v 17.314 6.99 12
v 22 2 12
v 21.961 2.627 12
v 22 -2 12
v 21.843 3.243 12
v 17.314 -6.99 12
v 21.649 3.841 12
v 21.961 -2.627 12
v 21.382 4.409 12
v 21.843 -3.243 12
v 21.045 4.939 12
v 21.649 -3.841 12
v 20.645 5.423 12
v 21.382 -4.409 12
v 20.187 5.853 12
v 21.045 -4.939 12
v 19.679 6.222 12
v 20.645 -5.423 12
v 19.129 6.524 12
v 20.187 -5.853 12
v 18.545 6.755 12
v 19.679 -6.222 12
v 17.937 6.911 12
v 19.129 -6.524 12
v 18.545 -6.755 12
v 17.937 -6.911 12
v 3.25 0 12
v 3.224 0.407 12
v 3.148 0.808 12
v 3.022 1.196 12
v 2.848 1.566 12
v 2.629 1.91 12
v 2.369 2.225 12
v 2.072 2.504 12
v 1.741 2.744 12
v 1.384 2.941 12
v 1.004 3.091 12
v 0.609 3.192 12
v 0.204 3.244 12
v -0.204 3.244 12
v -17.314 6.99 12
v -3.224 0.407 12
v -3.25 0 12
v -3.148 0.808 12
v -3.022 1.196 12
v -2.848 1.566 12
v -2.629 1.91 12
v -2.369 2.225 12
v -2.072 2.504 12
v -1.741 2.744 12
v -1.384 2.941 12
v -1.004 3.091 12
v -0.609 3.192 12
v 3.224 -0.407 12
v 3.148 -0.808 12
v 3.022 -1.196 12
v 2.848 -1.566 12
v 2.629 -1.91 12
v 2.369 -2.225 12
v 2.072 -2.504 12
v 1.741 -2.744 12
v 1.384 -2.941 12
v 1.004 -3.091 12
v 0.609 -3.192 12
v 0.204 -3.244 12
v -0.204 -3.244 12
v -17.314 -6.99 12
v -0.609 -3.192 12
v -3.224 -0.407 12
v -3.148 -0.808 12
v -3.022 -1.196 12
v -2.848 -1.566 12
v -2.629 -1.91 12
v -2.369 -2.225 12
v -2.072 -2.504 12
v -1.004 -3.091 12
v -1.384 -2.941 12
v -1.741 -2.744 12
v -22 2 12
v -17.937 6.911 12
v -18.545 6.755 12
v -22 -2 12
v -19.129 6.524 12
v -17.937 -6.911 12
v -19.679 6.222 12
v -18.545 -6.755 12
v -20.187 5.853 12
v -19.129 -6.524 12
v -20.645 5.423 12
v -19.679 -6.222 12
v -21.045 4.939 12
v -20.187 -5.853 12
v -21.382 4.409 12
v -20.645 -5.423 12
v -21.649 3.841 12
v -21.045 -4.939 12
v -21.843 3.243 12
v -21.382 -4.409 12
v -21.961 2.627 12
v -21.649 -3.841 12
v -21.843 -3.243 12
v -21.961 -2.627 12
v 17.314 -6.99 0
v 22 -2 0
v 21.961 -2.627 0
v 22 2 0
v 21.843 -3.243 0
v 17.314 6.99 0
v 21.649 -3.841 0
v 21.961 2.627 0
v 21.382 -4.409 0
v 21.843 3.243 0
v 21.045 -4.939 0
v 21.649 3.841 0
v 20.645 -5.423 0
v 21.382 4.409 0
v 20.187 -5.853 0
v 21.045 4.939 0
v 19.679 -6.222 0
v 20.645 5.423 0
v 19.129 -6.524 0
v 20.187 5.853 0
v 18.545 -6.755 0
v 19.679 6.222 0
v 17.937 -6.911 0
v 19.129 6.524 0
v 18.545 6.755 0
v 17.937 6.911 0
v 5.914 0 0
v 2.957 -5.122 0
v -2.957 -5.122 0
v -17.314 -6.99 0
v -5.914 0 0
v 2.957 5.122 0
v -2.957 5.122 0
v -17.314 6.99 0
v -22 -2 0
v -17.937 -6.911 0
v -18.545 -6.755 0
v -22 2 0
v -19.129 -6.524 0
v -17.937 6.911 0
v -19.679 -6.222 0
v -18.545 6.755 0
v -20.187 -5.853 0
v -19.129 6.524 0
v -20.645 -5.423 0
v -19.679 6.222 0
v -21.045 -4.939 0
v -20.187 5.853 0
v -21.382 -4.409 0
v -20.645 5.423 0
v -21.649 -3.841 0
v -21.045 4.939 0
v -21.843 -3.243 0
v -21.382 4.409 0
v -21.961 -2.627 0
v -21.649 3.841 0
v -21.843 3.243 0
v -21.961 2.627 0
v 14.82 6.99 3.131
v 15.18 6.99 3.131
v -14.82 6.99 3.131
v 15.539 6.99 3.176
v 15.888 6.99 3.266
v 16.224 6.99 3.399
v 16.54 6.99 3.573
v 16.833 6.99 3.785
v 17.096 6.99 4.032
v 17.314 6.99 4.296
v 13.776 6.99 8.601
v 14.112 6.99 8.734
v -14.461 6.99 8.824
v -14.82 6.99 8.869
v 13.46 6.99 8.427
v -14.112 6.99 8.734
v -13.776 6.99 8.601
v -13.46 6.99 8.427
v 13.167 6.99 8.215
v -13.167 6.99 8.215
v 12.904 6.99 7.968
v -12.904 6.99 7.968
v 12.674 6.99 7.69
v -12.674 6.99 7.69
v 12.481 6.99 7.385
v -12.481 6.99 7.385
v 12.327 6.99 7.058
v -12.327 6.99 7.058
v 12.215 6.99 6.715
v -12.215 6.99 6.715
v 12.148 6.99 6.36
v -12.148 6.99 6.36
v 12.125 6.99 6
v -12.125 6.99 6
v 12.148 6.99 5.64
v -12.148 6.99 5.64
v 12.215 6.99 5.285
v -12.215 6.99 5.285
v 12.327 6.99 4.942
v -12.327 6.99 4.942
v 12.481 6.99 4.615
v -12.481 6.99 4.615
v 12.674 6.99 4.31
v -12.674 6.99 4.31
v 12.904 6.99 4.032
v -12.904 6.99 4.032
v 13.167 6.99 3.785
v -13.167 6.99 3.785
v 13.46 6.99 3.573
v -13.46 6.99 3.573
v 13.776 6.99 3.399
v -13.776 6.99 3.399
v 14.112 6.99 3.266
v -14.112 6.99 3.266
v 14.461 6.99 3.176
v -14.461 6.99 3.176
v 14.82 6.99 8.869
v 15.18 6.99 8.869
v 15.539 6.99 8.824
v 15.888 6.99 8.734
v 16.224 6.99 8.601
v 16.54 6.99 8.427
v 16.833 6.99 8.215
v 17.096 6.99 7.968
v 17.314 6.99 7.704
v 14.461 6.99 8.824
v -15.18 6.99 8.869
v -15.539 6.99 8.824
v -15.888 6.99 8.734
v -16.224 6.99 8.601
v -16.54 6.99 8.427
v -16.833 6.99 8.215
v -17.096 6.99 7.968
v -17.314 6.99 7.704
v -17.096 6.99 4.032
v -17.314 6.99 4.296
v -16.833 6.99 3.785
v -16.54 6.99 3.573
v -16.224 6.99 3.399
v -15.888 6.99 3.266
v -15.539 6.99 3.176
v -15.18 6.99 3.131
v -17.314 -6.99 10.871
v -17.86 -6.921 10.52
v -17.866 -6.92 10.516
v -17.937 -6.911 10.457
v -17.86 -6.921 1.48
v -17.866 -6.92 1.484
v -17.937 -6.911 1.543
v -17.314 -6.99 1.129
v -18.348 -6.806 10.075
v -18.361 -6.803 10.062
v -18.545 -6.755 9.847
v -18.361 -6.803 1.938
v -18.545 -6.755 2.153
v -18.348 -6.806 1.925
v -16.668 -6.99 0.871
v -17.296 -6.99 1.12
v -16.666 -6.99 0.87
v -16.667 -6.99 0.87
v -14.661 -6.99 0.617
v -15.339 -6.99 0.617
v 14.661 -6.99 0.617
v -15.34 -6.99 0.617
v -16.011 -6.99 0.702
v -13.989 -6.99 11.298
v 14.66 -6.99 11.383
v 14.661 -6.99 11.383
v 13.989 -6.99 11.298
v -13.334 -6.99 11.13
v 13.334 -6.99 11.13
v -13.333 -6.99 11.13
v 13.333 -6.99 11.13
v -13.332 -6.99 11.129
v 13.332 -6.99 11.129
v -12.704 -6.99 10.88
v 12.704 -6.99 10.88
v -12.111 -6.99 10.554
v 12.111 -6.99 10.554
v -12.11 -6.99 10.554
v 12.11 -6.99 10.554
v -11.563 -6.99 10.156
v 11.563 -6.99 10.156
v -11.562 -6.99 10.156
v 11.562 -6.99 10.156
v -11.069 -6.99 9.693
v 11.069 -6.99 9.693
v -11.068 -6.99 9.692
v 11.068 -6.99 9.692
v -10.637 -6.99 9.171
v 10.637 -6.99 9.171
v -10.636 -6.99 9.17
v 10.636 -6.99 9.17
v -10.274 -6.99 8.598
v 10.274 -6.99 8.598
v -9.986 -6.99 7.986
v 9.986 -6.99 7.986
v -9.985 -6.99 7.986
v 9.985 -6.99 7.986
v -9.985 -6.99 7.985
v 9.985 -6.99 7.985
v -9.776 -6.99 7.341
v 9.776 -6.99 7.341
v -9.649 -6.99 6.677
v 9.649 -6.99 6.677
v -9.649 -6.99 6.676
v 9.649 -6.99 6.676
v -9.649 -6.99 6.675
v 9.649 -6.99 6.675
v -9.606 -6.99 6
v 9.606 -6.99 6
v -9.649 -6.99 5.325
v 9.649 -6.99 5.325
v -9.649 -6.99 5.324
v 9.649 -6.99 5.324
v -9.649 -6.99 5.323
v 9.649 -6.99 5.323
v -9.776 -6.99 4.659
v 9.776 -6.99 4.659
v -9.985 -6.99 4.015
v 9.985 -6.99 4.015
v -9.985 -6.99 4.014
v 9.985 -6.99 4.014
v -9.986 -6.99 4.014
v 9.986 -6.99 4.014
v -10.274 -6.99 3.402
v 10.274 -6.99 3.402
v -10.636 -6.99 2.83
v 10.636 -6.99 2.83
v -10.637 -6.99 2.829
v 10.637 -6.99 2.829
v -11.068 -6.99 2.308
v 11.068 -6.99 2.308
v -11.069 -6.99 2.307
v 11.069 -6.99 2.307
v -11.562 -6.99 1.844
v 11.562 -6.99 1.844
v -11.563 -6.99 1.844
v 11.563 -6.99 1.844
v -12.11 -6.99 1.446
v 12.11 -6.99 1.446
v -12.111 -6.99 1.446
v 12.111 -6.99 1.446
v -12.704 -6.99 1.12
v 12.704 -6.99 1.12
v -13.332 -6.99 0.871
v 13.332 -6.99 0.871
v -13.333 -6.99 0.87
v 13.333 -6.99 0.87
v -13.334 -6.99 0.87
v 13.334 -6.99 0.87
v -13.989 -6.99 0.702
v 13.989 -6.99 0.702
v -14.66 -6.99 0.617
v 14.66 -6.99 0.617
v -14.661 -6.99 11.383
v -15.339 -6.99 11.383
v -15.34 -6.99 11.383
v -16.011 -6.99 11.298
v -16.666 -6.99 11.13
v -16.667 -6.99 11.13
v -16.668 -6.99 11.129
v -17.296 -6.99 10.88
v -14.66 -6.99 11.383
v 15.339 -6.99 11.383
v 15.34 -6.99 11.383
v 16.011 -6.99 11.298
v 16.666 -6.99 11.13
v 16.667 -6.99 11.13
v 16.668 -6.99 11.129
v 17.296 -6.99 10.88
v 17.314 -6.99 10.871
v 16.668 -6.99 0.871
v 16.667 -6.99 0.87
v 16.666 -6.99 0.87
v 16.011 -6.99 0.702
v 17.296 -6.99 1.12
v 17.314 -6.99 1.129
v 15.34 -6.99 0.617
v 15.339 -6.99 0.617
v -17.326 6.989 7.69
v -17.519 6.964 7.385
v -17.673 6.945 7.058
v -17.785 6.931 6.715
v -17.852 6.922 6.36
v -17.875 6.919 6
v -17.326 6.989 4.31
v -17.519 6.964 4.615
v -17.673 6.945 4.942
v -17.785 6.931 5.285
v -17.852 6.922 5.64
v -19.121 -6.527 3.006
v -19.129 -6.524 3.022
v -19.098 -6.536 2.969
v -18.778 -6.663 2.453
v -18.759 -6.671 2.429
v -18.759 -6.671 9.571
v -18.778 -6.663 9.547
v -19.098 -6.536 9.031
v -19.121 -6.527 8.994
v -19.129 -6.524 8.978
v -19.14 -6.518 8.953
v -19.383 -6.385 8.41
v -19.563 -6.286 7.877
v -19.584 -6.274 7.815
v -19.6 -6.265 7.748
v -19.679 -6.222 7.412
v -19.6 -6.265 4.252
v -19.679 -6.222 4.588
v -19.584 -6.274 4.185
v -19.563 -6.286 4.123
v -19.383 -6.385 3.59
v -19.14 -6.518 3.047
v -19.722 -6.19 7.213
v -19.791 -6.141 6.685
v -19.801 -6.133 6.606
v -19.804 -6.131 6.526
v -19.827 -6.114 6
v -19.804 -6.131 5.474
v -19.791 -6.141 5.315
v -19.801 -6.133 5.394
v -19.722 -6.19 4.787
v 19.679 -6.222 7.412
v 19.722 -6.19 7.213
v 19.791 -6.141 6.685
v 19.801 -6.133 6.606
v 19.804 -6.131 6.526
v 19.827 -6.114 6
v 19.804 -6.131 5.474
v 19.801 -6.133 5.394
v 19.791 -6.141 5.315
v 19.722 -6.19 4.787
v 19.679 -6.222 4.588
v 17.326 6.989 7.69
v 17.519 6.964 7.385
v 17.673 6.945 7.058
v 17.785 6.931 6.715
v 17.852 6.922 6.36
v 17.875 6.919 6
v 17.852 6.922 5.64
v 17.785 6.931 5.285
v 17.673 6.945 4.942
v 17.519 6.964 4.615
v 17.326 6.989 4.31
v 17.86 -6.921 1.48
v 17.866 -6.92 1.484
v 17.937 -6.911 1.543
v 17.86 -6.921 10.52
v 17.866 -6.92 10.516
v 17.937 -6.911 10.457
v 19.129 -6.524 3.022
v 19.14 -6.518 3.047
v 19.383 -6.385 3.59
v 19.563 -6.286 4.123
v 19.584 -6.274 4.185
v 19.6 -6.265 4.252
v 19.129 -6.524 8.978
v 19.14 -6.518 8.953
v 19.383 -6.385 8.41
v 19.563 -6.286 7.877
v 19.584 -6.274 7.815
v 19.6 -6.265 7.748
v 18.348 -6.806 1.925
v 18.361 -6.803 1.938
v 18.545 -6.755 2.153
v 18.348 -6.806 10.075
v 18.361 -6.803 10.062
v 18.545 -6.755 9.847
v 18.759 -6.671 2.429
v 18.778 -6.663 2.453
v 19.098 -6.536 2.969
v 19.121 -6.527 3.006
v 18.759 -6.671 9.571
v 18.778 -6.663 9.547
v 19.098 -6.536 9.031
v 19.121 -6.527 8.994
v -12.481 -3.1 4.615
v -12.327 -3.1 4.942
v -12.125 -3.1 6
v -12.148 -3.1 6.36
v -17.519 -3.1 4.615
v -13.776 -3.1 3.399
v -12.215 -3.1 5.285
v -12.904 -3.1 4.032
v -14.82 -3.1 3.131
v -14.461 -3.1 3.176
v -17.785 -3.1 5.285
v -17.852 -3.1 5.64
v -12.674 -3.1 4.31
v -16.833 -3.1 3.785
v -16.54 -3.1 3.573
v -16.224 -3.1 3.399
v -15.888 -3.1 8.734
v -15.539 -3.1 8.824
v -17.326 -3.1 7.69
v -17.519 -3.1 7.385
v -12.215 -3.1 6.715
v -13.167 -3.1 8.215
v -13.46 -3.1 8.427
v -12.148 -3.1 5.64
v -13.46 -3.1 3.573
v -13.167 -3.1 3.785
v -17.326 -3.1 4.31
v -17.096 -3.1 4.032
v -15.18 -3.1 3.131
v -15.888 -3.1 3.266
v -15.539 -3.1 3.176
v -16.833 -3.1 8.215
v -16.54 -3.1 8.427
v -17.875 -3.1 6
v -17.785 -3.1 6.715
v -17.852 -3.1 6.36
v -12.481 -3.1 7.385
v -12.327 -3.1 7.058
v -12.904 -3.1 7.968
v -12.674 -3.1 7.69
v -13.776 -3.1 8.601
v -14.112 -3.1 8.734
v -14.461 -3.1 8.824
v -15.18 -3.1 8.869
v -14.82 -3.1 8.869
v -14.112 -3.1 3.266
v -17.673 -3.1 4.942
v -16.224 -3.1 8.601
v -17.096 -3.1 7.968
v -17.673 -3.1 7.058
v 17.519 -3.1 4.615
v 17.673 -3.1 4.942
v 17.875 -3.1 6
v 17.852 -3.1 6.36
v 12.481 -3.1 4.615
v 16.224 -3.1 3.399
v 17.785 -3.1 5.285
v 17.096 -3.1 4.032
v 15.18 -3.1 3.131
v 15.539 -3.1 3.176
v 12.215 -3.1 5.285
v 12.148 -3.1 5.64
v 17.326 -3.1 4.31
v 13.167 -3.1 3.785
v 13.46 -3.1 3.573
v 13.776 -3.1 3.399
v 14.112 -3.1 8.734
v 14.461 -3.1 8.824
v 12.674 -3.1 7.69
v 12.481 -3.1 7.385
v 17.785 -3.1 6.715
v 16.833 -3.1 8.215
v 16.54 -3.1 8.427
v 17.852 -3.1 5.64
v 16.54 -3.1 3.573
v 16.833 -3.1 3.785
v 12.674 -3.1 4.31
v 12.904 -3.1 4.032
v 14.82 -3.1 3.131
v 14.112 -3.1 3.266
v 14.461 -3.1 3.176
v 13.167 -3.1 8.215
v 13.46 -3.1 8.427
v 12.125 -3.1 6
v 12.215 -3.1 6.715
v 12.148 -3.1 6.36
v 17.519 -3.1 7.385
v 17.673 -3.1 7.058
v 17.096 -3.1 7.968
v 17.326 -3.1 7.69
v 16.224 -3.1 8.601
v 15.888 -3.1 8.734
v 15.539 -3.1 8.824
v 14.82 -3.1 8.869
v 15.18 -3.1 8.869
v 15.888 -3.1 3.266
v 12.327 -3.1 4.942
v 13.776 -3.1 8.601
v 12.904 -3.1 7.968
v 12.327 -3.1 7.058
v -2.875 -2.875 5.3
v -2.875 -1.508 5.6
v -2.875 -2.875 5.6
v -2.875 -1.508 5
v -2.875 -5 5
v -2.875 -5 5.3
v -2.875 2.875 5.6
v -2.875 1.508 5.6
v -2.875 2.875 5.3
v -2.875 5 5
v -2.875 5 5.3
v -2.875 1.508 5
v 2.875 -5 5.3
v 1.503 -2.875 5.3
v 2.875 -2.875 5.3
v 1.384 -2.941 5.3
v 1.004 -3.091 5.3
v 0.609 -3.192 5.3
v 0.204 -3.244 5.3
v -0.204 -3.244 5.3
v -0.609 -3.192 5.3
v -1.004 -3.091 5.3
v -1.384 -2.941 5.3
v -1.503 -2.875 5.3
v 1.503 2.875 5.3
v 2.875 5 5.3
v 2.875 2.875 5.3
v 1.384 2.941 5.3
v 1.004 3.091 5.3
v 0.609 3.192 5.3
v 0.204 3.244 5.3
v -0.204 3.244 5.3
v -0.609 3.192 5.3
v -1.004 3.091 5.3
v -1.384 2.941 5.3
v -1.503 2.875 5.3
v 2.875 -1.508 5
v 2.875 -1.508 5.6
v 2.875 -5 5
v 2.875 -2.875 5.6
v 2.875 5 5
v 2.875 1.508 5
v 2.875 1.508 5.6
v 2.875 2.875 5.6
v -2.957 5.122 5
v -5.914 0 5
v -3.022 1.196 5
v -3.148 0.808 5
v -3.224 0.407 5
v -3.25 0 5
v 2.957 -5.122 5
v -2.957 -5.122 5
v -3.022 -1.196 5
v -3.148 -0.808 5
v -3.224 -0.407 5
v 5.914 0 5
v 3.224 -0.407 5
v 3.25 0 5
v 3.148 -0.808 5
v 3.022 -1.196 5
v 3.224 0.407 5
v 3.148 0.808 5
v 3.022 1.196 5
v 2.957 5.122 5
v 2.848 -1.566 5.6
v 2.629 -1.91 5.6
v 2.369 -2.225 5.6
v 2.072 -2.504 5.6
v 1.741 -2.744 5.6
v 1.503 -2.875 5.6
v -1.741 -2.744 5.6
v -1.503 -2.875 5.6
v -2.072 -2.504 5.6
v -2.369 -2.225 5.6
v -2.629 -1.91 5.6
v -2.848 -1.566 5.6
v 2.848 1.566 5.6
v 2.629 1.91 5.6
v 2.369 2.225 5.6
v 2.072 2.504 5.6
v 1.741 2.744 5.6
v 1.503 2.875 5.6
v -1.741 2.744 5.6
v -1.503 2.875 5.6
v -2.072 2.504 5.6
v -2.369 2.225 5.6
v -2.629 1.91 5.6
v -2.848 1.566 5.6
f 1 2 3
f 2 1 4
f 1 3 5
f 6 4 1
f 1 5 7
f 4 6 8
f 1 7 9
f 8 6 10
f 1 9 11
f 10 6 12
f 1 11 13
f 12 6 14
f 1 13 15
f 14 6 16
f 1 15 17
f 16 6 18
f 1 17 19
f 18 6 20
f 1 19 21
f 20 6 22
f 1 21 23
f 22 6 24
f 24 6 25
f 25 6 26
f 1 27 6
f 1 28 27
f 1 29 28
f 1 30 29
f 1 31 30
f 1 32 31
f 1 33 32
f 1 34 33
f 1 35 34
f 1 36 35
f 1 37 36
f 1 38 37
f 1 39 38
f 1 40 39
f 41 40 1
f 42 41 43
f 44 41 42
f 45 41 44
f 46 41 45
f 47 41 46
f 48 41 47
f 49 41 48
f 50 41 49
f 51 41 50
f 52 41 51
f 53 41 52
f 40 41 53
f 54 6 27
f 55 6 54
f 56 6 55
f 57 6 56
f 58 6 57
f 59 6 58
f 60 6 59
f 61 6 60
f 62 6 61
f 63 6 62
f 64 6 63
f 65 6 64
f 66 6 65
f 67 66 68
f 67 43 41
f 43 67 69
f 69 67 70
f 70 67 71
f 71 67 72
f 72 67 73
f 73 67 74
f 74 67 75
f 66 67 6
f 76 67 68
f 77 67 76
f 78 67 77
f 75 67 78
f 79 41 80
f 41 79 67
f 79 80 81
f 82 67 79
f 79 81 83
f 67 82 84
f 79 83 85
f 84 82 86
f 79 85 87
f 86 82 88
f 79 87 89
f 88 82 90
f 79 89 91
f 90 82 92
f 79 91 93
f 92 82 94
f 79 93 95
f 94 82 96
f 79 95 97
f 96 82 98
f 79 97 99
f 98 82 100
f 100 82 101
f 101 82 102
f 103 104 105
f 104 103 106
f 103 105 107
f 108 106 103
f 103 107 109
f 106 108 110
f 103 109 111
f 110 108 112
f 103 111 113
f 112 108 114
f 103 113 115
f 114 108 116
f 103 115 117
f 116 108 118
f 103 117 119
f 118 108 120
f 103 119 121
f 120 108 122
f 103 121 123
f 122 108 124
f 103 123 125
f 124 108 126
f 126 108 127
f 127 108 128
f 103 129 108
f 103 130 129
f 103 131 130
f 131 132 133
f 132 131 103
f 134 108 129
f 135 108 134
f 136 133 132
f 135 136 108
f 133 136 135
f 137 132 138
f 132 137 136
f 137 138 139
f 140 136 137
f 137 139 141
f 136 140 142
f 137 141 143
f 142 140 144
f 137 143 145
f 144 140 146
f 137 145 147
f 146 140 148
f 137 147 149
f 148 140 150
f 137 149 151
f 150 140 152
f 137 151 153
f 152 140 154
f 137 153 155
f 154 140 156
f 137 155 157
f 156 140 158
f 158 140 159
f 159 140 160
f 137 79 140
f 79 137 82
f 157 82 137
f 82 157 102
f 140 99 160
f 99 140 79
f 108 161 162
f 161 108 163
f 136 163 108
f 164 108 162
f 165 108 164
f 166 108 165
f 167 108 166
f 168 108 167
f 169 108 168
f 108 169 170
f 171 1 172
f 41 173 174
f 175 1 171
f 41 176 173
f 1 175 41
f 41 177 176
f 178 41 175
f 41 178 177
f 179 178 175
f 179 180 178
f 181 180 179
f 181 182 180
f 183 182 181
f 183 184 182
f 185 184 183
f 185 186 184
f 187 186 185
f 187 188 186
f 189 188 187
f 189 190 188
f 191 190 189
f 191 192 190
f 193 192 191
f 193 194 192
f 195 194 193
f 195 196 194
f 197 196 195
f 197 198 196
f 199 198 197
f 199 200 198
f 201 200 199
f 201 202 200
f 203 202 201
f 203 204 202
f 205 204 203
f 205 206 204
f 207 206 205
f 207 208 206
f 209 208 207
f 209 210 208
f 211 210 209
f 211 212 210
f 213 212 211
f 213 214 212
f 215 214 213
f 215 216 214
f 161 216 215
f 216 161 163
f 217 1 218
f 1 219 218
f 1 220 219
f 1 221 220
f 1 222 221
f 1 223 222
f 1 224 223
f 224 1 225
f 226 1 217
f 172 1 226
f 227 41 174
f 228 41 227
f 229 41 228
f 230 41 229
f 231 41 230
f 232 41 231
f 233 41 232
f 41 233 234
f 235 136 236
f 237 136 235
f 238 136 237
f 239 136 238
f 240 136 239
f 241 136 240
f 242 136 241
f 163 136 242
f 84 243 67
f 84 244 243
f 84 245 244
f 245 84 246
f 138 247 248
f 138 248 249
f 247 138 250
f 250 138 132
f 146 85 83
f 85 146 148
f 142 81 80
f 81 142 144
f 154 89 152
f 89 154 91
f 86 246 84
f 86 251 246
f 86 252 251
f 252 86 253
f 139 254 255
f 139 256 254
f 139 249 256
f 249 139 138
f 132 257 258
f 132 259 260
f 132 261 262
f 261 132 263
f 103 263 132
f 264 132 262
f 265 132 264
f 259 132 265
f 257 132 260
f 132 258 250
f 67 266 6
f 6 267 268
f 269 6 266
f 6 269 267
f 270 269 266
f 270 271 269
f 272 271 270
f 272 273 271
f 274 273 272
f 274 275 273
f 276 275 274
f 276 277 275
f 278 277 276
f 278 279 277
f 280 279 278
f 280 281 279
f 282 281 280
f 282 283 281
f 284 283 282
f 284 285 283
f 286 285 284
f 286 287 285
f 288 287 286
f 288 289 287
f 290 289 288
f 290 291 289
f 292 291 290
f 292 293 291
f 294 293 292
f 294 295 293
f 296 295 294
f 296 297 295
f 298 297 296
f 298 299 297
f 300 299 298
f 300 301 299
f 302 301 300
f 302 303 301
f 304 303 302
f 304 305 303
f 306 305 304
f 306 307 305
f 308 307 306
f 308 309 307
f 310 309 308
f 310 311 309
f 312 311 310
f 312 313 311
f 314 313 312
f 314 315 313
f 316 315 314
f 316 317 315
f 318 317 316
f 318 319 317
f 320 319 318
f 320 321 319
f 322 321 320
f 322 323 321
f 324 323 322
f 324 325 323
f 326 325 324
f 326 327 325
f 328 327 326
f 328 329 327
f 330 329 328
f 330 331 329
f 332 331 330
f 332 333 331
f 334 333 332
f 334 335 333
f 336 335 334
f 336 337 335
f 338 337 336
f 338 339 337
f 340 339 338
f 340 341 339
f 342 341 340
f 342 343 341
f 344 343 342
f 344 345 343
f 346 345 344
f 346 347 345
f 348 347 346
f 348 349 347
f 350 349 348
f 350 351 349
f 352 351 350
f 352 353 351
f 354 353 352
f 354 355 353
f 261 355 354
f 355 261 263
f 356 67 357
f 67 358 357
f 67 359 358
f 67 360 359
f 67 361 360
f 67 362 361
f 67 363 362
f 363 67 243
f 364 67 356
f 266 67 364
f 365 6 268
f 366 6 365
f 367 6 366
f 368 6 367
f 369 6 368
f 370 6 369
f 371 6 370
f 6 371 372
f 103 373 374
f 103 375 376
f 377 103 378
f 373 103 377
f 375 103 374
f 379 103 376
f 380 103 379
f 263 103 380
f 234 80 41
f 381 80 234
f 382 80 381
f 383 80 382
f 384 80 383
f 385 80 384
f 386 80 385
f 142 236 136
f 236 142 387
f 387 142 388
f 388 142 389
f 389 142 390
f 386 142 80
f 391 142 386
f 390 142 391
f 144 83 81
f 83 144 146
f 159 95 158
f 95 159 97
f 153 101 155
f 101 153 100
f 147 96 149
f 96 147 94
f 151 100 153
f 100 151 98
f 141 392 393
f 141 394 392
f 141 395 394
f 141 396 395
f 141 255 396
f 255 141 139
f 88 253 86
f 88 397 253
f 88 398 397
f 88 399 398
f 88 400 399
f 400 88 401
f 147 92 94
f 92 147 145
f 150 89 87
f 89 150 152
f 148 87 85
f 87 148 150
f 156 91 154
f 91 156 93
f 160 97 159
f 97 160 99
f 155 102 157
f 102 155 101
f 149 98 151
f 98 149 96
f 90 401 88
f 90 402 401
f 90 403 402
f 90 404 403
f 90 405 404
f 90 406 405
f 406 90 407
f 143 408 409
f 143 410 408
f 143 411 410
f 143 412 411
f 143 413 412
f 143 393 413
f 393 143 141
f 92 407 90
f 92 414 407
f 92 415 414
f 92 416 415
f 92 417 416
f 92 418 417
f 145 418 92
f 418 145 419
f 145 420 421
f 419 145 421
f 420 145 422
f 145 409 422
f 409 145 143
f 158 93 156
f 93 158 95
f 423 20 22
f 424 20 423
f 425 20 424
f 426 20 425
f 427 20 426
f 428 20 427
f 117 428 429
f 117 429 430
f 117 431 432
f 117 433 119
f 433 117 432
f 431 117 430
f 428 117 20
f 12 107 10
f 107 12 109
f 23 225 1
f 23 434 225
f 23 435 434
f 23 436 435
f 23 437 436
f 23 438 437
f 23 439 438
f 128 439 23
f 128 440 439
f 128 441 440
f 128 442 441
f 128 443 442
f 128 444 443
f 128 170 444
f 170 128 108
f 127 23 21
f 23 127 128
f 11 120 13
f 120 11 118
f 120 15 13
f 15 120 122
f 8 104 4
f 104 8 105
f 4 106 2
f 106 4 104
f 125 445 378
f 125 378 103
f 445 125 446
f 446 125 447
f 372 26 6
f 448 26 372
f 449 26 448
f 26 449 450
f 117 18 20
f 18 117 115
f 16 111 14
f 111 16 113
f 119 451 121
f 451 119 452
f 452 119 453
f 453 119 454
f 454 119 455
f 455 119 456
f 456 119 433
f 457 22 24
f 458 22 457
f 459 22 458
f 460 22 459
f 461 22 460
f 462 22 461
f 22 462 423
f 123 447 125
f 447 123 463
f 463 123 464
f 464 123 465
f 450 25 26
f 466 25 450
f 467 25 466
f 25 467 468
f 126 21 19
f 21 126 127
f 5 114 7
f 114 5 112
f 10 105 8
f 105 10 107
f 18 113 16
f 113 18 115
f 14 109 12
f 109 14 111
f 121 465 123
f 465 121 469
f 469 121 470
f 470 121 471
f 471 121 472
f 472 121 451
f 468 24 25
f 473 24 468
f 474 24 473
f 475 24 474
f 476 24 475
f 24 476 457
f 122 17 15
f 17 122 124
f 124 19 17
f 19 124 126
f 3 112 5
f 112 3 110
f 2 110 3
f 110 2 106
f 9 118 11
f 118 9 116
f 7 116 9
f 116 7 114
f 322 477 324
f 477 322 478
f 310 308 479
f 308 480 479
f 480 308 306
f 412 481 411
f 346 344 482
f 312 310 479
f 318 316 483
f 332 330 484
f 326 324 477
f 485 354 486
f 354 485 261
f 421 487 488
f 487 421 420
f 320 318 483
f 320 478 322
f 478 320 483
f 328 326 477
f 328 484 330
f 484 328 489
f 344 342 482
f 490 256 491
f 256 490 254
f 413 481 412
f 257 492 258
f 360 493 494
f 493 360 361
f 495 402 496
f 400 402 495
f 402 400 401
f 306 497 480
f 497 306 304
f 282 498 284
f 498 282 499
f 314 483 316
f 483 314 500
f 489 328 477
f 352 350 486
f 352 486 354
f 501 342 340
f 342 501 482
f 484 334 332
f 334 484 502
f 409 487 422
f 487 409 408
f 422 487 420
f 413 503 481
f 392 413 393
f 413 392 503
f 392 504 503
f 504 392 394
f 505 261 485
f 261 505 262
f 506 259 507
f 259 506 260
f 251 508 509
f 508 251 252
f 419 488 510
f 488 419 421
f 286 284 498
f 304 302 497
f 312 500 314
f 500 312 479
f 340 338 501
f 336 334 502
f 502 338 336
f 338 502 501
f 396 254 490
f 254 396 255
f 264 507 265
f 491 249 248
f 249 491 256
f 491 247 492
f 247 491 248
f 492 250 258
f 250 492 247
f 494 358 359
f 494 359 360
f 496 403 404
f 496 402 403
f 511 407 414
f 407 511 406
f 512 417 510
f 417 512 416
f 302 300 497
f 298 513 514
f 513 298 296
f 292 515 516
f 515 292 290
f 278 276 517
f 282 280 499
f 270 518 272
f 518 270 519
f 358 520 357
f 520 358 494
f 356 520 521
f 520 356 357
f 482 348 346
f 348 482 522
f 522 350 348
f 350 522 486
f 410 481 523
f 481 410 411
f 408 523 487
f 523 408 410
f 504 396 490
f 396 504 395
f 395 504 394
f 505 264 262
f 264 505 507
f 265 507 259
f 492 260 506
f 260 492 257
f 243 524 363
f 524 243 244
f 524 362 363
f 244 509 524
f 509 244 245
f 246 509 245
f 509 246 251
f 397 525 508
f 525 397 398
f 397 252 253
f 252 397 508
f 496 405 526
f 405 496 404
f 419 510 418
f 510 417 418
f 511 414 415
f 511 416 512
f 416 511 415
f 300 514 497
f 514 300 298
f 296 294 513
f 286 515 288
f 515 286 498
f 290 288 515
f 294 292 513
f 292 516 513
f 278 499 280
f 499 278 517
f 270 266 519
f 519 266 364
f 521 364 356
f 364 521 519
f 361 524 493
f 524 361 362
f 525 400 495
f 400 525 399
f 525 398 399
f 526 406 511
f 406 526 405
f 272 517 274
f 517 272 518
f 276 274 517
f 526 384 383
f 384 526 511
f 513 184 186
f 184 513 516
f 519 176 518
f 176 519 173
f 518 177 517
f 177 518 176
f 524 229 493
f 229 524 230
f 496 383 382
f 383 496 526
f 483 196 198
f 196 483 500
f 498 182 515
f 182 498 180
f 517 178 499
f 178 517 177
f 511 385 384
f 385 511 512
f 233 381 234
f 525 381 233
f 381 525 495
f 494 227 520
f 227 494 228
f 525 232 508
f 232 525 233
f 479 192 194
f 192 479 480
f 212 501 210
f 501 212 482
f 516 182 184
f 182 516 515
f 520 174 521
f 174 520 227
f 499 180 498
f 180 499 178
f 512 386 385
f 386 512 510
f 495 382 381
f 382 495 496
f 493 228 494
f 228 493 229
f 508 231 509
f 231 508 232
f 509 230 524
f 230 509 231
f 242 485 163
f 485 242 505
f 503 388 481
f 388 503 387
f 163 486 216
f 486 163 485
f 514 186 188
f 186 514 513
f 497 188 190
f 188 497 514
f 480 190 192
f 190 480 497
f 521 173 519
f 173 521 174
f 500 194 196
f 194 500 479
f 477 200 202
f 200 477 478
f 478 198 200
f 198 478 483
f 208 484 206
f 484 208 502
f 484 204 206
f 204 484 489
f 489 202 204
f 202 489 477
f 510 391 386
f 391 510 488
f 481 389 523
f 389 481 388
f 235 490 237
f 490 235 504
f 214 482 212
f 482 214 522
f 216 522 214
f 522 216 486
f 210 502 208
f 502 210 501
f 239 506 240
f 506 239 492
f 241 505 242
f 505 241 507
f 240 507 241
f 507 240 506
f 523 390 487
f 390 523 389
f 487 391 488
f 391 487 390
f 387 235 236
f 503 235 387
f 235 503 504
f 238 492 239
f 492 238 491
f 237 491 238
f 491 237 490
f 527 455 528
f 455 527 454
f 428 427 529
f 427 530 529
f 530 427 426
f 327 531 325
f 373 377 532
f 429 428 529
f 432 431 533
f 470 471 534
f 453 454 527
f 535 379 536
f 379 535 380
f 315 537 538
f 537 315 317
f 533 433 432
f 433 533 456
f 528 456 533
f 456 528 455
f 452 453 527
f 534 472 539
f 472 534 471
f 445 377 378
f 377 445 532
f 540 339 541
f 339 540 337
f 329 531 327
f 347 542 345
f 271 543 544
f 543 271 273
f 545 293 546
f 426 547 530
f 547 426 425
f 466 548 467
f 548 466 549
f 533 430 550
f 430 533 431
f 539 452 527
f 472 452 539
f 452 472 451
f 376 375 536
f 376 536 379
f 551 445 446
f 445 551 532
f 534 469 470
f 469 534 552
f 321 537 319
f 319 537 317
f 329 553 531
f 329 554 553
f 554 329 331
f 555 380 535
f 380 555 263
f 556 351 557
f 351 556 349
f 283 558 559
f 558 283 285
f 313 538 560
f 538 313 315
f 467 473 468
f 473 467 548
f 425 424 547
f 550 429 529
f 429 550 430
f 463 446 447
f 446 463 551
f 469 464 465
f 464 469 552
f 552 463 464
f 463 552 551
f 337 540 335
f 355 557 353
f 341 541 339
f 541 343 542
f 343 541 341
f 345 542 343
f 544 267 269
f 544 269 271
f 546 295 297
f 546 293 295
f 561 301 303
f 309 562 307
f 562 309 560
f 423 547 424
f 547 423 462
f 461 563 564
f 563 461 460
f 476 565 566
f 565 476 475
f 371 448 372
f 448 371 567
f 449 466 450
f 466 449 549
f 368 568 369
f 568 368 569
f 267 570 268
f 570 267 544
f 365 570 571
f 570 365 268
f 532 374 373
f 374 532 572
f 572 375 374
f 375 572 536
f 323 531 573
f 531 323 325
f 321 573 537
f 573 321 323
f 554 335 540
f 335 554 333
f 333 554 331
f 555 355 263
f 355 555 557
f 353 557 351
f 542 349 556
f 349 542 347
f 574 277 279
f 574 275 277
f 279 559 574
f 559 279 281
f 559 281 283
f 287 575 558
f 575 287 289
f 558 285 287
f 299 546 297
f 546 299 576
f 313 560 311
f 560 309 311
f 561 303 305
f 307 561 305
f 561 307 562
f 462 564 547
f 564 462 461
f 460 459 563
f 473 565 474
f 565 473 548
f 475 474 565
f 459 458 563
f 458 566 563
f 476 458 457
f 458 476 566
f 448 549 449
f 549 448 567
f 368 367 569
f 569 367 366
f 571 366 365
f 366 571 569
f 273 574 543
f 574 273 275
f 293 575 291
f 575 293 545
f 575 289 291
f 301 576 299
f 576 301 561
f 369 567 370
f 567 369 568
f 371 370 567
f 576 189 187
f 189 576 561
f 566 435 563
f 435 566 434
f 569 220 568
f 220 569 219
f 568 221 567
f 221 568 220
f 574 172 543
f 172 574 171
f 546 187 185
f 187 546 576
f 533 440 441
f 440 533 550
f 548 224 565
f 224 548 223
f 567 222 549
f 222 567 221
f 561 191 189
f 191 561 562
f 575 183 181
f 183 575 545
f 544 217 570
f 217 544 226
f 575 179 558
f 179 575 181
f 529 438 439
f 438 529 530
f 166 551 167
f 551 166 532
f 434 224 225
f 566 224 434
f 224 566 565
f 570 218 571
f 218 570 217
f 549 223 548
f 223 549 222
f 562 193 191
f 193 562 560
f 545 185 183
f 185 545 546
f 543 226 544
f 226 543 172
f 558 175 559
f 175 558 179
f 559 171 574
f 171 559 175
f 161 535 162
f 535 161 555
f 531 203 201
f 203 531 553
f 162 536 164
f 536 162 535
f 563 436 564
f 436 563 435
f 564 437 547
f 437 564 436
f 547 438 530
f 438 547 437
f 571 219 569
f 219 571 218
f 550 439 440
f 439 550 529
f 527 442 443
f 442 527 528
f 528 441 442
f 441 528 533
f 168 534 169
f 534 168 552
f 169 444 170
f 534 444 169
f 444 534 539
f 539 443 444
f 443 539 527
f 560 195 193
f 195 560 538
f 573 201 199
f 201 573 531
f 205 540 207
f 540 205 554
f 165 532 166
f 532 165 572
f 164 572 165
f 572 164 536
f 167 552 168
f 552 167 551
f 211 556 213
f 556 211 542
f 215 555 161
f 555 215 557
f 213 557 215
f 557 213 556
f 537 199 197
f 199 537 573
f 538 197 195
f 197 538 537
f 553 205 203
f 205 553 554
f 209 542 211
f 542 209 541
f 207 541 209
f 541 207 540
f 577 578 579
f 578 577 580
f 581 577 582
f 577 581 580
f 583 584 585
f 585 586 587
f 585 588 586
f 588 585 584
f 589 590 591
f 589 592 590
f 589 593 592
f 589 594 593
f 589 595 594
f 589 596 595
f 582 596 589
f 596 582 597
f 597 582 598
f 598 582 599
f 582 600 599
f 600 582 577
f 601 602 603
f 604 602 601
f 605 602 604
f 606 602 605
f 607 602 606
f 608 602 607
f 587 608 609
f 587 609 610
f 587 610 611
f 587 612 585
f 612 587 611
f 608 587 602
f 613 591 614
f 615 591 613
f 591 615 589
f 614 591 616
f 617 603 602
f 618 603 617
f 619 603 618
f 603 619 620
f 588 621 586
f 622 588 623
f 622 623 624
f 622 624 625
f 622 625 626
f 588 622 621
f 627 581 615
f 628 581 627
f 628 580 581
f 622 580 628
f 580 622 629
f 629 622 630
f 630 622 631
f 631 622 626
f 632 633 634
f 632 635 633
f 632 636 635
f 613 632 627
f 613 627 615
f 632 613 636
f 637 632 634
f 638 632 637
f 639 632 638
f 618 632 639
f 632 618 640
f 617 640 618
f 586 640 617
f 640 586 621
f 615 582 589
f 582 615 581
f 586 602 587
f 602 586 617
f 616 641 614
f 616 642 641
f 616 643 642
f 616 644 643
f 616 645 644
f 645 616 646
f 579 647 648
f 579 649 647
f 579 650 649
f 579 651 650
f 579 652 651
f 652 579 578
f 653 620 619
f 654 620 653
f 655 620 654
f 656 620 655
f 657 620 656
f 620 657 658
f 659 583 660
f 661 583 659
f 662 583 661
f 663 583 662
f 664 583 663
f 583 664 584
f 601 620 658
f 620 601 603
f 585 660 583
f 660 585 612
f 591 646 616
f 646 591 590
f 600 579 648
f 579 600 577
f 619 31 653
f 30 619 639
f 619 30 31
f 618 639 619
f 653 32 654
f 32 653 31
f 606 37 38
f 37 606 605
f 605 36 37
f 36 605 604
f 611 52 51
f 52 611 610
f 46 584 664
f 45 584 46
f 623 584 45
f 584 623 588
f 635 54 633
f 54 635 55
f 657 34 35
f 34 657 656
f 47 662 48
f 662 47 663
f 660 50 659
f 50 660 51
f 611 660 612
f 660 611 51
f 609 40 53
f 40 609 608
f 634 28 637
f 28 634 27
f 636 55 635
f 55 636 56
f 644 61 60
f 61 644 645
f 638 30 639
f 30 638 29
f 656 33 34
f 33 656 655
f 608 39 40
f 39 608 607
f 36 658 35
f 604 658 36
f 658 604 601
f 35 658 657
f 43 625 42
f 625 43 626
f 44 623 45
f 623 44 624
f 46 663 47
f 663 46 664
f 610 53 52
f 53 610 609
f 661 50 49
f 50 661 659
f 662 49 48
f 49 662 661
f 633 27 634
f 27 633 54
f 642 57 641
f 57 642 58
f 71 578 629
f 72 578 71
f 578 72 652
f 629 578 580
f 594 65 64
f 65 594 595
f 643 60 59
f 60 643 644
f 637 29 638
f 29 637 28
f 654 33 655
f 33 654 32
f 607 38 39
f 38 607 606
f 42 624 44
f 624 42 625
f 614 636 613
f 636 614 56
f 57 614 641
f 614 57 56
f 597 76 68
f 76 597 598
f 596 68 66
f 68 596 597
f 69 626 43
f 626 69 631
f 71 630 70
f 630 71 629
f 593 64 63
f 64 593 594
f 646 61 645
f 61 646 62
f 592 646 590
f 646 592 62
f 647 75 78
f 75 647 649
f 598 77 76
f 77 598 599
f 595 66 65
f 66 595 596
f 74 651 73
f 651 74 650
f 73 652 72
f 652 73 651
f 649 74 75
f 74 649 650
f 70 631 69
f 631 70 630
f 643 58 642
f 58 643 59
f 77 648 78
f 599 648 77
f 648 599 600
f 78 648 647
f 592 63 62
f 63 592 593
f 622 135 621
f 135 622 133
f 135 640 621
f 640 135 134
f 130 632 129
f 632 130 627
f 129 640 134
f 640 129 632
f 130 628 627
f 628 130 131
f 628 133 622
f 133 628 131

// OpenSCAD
$fn = 50;


difference() {
	union() {
		cylinder(h = 12, r = 7.0000000000);
		translate(v = [-7.5000000000, 0.0000000000, 0]) {
			hull() {
				translate(v = [-9.5000000000, 2.0000000000, 0]) {
					cylinder(h = 12, r = 5);
				}
				translate(v = [9.5000000000, 2.0000000000, 0]) {
					cylinder(h = 12, r = 5);
				}
				translate(v = [-9.5000000000, -2.0000000000, 0]) {
					cylinder(h = 12, r = 5);
				}
				translate(v = [9.5000000000, -2.0000000000, 0]) {
					cylinder(h = 12, r = 5);
				}
			}
		}
		translate(v = [-7.5000000000, 0.0000000000, 0]) {
			hull() {
				translate(v = [-9.5000000000, 2.0000000000, 0]) {
					cylinder(h = 12, r = 5);
				}
				translate(v = [9.5000000000, 2.0000000000, 0]) {
					cylinder(h = 12, r = 5);
				}
				translate(v = [-9.5000000000, -2.0000000000, 0]) {
					cylinder(h = 12, r = 5);
				}
				translate(v = [9.5000000000, -2.0000000000, 0]) {
					cylinder(h = 12, r = 5);
				}
			}
		}
		translate(v = [7.5000000000, 0.0000000000, 0]) {
			hull() {
				translate(v = [-9.5000000000, 2.0000000000, 0]) {
					cylinder(h = 12, r = 5);
				}
				translate(v = [9.5000000000, 2.0000000000, 0]) {
					cylinder(h = 12, r = 5);
				}
				translate(v = [-9.5000000000, -2.0000000000, 0]) {
					cylinder(h = 12, r = 5);
				}
				translate(v = [9.5000000000, -2.0000000000, 0]) {
					cylinder(h = 12, r = 5);
				}
			}
		}
		translate(v = [7.5000000000, 0.0000000000, 0]) {
			hull() {
				translate(v = [-9.5000000000, 2.0000000000, 0]) {
					cylinder(h = 12, r = 5);
				}
				translate(v = [9.5000000000, 2.0000000000, 0]) {
					cylinder(h = 12, r = 5);
				}
				translate(v = [-9.5000000000, -2.0000000000, 0]) {
					cylinder(h = 12, r = 5);
				}
				translate(v = [9.5000000000, -2.0000000000, 0]) {
					cylinder(h = 12, r = 5);
				}
			}
		}
	}
	union() {
		translate(v = [-15.0000000000, -7.0000000000, 6.0000000000]) {
			rotate(a = [90, 0, 0]) {
				difference() {
					union() {
						#translate(v = [0, 0, -14.0000000000]) {
							cylinder(h = 14, r = 2.6000000000);
						}
						#translate(v = [0, 0, -3.9000000000]) {
							cylinder(h = 3.9000000000, r1 = 2.8750000000, r2 = 5.4000000000);
						}
						#translate(v = [0, 0, -14.0000000000]) {
							cylinder(h = 14, r = 2.8750000000);
						}
						#translate(v = [0, 0, -14.0000000000]) {
							cylinder(h = 14, r = 2.6000000000);
						}
					}
					union();
				}
			}
		}
		translate(v = [15.0000000000, -7.0000000000, 6.0000000000]) {
			rotate(a = [90, 0, 0]) {
				difference() {
					union() {
						#translate(v = [0, 0, -14.0000000000]) {
							cylinder(h = 14, r = 2.6000000000);
						}
						#translate(v = [0, 0, -3.9000000000]) {
							cylinder(h = 3.9000000000, r1 = 2.8750000000, r2 = 5.4000000000);
						}
						#translate(v = [0, 0, -14.0000000000]) {
							cylinder(h = 14, r = 2.8750000000);
						}
						#translate(v = [0, 0, -14.0000000000]) {
							cylinder(h = 14, r = 2.6000000000);
						}
					}
					union();
				}
			}
		}
		translate(v = [0.0000000000, 0.0000000000, 0]) {
			rotate(a = [0, 0, 0]) {
				difference() {
					union() {
						#translate(v = [-2.8750000000, -5.0000000000, -0.3000000000]) {
							cube(size = [5.7500000000, 10, 0.3000000000]);
						}
						#translate(v = [-2.8750000000, -2.8750000000, -0.6000000000]) {
							cube(size = [5.7500000000, 5.7500000000, 0.3000000000]);
						}
						#translate(v = [-2.8750000000, -5.0000000000, 5]) {
							cube(size = [5.7500000000, 10, 0.3000000000]);
						}
						#translate(v = [-2.8750000000, -2.8750000000, 5.3000000000]) {
							cube(size = [5.7500000000, 5.7500000000, 0.3000000000]);
						}
						#translate(v = [0, 0, -100.0000000000]) {
							cylinder(h = 200, r = 3.2500000000);
						}
						#linear_extrude(height = 5) {
							polygon(points = [[5.9142500000, 0.0000000000], [2.9571250000, 5.1218907443], [-2.9571250000, 5.1218907443], [-5.9142500000, 0.0000000000], [-2.9571250000, -5.1218907443], [2.9571250000, -5.1218907443]]);
						}
						#translate(v = [-2.8750000000, -5.0000000000, -0.3000000000]) {
							cube(size = [5.7500000000, 10, 0.3000000000]);
						}
						#translate(v = [-2.8750000000, -2.8750000000, -0.6000000000]) {
							cube(size = [5.7500000000, 5.7500000000, 0.3000000000]);
						}
						#translate(v = [-2.8750000000, -5.0000000000, 5]) {
							cube(size = [5.7500000000, 10, 0.3000000000]);
						}
						#translate(v = [-2.8750000000, -2.8750000000, 5.3000000000]) {
							cube(size = [5.7500000000, 5.7500000000, 0.3000000000]);
						}
						#translate(v = [0, 0, -100.0000000000]) {
							cylinder(h = 200, r = 3.2500000000);
						}
						#translate(v = [-2.8750000000, -5.0000000000, -0.3000000000]) {
							cube(size = [5.7500000000, 10, 0.3000000000]);
						}
						#translate(v = [-2.8750000000, -2.8750000000, -0.6000000000]) {
							cube(size = [5.7500000000, 5.7500000000, 0.3000000000]);
						}
						#translate(v = [-2.8750000000, -5.0000000000, 5]) {
							cube(size = [5.7500000000, 10, 0.3000000000]);
						}
						#translate(v = [-2.8750000000, -2.8750000000, 5.3000000000]) {
							cube(size = [5.7500000000, 5.7500000000, 0.3000000000]);
						}
						#translate(v = [0, 0, -100.0000000000]) {
							cylinder(h = 200, r = 3.2500000000);
						}
					}
					union();
				}
			}
		}
		translate(v = [0, 0, -100]) {
			cylinder(h = 200, r = 3.2500000000);
		}
		translate(v = [0, 0, -100]) {
			cylinder(h = 200, r = 1.8000000000);
		}
	}
}
